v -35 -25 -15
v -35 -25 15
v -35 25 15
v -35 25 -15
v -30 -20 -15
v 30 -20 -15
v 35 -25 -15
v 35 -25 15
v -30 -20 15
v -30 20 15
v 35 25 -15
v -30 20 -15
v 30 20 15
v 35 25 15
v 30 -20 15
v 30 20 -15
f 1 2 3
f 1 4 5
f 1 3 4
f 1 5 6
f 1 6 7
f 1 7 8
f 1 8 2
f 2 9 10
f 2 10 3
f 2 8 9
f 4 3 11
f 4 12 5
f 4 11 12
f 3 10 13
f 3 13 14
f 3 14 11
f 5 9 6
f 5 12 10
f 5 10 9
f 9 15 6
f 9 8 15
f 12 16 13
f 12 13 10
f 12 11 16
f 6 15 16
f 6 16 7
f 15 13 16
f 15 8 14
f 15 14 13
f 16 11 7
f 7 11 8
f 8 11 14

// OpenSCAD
// Start: lazy_union
default_5_default_5();
// End: lazy_union

// Modules.

// 'PartMaterial undef-default - default 5.0'
module default_5_default_5() {
  // 'None : _combine_solids_and_holes'
  union() {
    // '_combine_solids_and_holes'
    difference() {
      // 'default : _combine_solids_and_holes'
      union() {
        // 'outer'
        multmatrix(m=[[1.0, 0.0, 0.0, -35.0], [0.0, 1.0, 0.0, -25.0], [0.0, 0.0, 1.0, -15.0], [0.0, 0.0, 0.0, 1.0]]) {
          // 'outer : _combine_solids_and_holes'
          union() {
            // 'outer'
            cube(size=[70.0, 50.0, 30.0]);
          }
        }
      }
      // 'default'
      multmatrix(m=[[1.0, 0.0, 0.0, -30.0], [0.0, 1.0, 0.0, -20.0], [0.0, 0.0, 1.0, -15.0005], [0.0, 0.0, 0.0, 1.0]]) {
        // 'hole : _combine_solids_and_holes'
        union() {
          // 'hole'
          cube(size=[60.0, 40.0, 30.001]);
        }
      }
    }
  }
} // end module default_5_default_5
